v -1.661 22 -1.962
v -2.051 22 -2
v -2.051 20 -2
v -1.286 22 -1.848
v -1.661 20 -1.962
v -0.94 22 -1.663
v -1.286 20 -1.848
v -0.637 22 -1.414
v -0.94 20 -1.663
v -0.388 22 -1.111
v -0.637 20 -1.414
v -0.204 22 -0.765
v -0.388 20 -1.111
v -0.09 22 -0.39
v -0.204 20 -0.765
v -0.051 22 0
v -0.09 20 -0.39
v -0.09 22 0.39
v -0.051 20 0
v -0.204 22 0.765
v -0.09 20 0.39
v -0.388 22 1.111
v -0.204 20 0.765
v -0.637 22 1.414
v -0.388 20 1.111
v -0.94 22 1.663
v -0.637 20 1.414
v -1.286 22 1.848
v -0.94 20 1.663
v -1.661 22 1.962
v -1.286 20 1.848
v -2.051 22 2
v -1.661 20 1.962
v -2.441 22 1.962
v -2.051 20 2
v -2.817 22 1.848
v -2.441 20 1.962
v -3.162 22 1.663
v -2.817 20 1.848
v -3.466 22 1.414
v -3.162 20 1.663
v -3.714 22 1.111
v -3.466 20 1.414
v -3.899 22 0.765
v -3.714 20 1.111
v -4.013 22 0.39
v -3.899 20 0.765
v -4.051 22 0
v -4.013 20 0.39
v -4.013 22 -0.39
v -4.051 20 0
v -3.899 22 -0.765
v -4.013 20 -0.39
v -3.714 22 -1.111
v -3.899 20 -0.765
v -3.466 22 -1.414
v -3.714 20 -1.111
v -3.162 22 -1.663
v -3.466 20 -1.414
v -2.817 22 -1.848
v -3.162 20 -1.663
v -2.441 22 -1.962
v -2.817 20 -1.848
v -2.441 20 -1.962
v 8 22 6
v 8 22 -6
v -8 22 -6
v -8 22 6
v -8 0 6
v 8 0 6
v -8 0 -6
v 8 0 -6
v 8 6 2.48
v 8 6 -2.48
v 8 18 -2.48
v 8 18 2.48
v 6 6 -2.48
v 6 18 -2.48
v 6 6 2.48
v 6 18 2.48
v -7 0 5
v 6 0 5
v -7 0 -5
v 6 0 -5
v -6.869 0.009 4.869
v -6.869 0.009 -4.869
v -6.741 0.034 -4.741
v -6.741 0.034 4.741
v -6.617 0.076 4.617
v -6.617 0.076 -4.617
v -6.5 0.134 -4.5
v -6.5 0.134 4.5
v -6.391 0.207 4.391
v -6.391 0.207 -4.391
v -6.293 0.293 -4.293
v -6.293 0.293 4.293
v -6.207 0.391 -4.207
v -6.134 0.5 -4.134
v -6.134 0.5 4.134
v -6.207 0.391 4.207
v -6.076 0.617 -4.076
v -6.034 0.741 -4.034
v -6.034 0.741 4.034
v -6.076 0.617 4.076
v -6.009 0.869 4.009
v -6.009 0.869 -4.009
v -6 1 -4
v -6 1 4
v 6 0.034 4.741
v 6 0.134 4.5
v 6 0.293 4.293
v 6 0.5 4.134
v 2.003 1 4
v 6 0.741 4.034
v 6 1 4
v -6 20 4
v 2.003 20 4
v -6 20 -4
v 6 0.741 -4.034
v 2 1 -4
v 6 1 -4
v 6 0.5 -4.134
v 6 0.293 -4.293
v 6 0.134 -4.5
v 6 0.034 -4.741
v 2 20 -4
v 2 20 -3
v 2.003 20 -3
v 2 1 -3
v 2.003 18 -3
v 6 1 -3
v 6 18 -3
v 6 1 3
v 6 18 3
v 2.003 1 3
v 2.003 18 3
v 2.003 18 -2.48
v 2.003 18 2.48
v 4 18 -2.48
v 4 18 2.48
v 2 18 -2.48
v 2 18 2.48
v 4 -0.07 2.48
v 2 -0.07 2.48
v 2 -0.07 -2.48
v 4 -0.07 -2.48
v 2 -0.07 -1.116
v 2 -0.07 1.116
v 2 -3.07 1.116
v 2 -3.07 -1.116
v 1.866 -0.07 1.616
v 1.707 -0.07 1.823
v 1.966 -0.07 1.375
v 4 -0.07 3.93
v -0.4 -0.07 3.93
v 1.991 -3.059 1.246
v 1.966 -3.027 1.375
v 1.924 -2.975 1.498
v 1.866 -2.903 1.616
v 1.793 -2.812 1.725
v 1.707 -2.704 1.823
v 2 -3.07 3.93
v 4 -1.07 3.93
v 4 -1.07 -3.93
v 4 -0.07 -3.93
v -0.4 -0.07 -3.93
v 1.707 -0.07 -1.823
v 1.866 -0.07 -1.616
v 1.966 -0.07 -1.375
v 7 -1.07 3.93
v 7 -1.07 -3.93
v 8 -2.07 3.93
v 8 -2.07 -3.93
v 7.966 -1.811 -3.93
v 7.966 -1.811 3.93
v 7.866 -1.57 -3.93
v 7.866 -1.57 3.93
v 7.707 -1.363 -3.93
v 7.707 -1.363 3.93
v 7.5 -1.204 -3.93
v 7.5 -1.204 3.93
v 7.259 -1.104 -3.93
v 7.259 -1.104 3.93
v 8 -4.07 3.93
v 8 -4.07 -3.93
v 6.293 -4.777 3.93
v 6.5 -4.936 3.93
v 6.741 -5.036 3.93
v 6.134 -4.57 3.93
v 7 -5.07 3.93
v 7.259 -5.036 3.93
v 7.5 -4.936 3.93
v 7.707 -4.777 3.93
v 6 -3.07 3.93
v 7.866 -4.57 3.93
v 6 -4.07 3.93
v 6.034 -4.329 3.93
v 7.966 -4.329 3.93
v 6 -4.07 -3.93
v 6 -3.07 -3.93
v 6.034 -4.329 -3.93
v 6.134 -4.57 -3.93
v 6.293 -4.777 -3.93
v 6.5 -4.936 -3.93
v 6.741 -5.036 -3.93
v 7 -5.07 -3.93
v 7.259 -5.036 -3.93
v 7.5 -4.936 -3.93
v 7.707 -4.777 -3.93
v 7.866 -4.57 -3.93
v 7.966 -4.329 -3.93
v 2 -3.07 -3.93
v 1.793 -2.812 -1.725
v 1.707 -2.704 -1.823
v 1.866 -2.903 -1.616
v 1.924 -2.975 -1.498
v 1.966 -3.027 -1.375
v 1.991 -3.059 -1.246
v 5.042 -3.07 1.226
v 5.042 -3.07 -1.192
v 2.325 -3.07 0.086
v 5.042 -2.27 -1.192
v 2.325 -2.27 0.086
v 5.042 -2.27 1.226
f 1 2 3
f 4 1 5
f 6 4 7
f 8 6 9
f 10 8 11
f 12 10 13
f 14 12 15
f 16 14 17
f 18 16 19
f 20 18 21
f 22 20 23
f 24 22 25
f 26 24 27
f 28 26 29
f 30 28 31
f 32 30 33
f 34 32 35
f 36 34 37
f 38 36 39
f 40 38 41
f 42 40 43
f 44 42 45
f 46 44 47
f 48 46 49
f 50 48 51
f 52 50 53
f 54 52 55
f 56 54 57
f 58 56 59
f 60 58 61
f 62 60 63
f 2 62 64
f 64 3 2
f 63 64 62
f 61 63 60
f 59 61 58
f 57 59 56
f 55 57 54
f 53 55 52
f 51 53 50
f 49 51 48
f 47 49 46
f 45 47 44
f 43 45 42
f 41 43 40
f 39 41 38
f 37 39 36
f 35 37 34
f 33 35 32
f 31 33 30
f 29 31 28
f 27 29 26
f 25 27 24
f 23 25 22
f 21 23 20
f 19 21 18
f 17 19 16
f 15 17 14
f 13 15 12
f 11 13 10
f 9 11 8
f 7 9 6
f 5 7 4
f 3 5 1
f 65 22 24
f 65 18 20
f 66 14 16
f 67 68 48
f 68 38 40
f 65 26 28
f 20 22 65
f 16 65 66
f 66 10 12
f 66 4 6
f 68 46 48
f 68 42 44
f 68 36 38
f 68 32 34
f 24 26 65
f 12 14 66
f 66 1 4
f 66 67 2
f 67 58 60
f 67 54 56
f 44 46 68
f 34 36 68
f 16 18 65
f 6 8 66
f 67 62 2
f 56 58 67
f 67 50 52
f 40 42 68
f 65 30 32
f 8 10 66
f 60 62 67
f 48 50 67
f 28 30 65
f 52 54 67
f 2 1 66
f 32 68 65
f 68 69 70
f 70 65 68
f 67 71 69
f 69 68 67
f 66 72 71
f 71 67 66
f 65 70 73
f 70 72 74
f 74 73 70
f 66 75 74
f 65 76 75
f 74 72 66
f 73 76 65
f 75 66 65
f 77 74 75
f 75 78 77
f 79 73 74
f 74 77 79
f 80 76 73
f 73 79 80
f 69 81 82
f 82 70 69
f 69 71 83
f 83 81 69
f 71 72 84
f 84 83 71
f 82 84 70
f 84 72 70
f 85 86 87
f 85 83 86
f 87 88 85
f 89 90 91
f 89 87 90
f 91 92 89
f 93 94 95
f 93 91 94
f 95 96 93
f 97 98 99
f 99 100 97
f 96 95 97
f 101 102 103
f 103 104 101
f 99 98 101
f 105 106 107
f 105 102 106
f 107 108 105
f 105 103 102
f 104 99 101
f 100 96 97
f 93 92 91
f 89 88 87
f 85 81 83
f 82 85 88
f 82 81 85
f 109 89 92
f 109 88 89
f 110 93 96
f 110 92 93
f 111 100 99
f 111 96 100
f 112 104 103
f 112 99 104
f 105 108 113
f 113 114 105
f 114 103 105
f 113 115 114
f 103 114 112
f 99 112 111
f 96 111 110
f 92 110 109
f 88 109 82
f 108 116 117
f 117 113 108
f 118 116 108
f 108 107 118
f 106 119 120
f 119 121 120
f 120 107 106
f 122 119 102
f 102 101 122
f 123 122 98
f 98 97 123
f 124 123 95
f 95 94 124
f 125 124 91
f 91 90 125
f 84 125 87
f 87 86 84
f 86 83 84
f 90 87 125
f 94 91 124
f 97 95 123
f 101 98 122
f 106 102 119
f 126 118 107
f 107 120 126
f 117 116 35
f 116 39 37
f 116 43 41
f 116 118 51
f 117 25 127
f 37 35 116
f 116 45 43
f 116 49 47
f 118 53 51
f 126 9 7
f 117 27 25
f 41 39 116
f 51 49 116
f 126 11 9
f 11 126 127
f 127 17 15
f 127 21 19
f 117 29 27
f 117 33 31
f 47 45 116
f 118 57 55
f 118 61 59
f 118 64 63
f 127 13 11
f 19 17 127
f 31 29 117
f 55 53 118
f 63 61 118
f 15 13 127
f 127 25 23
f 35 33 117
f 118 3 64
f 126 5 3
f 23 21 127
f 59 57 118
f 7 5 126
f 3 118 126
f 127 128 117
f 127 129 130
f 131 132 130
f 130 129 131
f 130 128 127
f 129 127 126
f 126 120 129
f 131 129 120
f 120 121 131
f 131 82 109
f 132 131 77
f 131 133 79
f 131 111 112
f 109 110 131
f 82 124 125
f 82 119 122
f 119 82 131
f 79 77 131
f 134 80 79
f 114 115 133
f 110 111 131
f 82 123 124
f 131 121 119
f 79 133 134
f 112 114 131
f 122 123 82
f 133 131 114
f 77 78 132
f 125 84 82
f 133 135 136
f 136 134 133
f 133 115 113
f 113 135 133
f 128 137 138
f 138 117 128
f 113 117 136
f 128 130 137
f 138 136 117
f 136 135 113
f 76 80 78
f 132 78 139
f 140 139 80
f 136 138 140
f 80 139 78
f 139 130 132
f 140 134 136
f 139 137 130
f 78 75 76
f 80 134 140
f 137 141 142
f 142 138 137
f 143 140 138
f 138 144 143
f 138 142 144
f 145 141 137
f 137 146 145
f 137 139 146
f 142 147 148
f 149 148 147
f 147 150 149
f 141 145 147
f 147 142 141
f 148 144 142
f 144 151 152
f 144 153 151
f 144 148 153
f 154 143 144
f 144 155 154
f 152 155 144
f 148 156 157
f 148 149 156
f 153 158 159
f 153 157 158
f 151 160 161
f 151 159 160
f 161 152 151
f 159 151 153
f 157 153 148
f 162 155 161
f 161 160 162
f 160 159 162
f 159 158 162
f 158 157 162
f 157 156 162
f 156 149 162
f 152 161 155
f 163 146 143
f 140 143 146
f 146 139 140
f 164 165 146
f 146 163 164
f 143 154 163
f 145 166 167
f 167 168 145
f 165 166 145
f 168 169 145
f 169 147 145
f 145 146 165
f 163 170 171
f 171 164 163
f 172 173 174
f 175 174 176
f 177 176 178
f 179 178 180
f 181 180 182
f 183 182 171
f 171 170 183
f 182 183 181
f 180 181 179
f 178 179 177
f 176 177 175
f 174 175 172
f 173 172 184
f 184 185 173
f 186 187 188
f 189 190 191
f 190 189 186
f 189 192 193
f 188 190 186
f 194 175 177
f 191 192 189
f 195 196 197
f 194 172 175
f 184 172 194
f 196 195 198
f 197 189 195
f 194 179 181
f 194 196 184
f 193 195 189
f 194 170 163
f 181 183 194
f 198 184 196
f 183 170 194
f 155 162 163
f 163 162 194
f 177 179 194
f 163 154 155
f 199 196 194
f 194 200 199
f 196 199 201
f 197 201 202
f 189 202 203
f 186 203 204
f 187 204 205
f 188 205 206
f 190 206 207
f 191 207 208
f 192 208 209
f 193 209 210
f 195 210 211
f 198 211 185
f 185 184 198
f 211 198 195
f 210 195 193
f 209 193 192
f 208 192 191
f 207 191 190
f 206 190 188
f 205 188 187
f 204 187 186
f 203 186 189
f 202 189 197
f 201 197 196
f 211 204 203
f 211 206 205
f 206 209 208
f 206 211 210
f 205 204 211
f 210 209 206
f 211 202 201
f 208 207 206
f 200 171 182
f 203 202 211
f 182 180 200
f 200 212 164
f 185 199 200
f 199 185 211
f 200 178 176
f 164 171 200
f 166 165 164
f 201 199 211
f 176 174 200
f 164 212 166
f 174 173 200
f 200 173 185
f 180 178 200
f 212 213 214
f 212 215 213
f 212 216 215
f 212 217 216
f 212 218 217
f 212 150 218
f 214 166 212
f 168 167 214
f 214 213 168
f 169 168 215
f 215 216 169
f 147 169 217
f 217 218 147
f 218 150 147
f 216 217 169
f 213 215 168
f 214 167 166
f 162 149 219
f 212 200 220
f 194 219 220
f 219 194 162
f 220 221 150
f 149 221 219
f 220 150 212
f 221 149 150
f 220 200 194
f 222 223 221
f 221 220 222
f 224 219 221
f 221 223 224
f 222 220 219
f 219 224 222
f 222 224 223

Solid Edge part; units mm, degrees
sketch "Sketch1" plane through (0, 0, 0) normal (0, -1, 0) x (1, 0, 0)
  line L0 (8, 6) -> (-8, 6)
  line L1 (-8, 6) -> (-8, -6)
  line L2 (-8, -6) -> (8, -6)
  line L3 (8, -6) -> (8, 6)
extrude "Protrusion1" add sketch "Sketch1" against normal blind 22
sketch "Sketch2" plane through (0, 0, 0) normal (0, -1, 0) x (1, 0, 0)
  line L0 (6, 4) -> (-6, 4)
  line L1 (-6, 4) -> (-6, -4)
  line L2 (-6, -4) -> (6, -4)
  line L3 (6, -4) -> (6, 4)
extrude "Cutout1" cut sketch "Sketch2" against normal blind 20
sketch "Sketch3" plane through (0, 20, 0) normal (0, -1, 0) x (1, 0, 0)
  line L0 (6, -3) -> (2, -3)
  line L1 (2, -3) -> (2, -4)
  line L2 (2, -4) -> (6, -4)
  line L3 (6, -4) -> (6, -3)
  line L4 (6, 3) -> (2.0028, 3)
  line L5 (2.0028, 3) -> (2.0028, 4)
  line L6 (2.0028, 4) -> (6, 4)
  line L7 (6, 4) -> (6, 3)
extrude "LockSideProtrusion" add sketch "Sketch3" along normal blind 19
sketch "Sketch4" plane through (0, 20, 0) normal (0, -1, 0) x (1, 0, 0)
  line L0 (6, 3) -> (6, -3)
  line L1 (6, -3) -> (2.0028, -3)
  line L2 (2.0028, -3) -> (2.0028, 3)
  line L3 (2.0028, 3) -> (6, 3)
extrude "LockBaseProtrusion" add sketch "Sketch4" along normal blind 2
sketch "Sketch5" plane through (4.0014, 18, 0) normal (0, -1, 0) x (1, 0, 0)
  line L0 (-0.0014, 2.48) -> (-0.0014, -2.48)
  line L1 (-0.0014, -2.48) -> (-2.0014, -2.48)
  line L2 (-2.0014, -2.48) -> (-2.0014, 2.48)
  line L3 (-2.0014, 2.48) -> (-0.0014, 2.48)
extrude "LockProtrusion" add sketch "Sketch5" along normal blind 18.07
sketch "Sketch6" plane through (3, -0.07, 0) normal (0, -1, 0) x (1, 0, 0)
  line L0 (-1, -3.93) -> (-1, 3.93)
  line L1 (-1, 3.93) -> (1, 3.93)
  line L2 (1, 3.93) -> (1, -3.93)
  line L3 (1, -3.93) -> (-1, -3.93)
extrude "LockHeadMainProtrusion" add sketch "Sketch6" along normal blind 3
sketch "Sketch7" plane through (3, -0.07, 0) normal (0, -1, 0) x (1, 0, 0)
  line L0 (-3.4, 3.93) -> (-1, 1.53)
  line L1 (-1, 1.53) -> (-1, 3.93)
  line L2 (-1, 3.93) -> (-3.4, 3.93)
  line L3 (-3.4, -3.93) -> (-1, -1.53)
  line L4 (-1, -1.53) -> (-1, -3.93)
  line L5 (-1, -3.93) -> (-3.4, -3.93)
  dimension "D1" = 0.07
  dimension "D2" = 7.86
  dimension "D3" = 0.07
extrude "LockHeadTriangleProtrusion" add sketch "Sketch7" along normal blind 3
sketch "Sketch8" plane through (1.8, -1.57, -3.93) normal (0, 0, -1) x (1, 0, 0)
  line L0 (-2.2, 1.5) -> (0.2, 1.5)
  line L1 (0.2, 1.5) -> (-2.2, -1.5)
  line L2 (-2.2, -1.5) -> (-2.2, 1.5)
extrude "LockHeadTriangleCut" cut sketch "Sketch8" against normal blind 8.6519
sketch "Sketch9" plane through (4, 7.465, 0) normal (1, 0, 0) x (0, 0, 1)
  line L0 (-3.93, 10.535) -> (3.93, 10.535)
  line L1 (3.93, 10.535) -> (3.93, 8.535)
  line L2 (3.93, 8.535) -> (-3.93, 8.535)
  line L3 (-3.93, 8.535) -> (-3.93, 10.535)
extrude "FlapBaseProtrusion" add sketch "Sketch9" along normal blind 4
sketch "Sketch10" plane through (5, -3.07, 0) normal (0, -1, 0) x (1, 0, 0)
  line L0 (3, 3.93) -> (1, 3.93)
  line L1 (1, 3.93) -> (1, -3.93)
  line L2 (1, -3.93) -> (3, -3.93)
  line L3 (3, -3.93) -> (3, 3.93)
extrude "FlapHandleProtrusion" add sketch "Sketch10" along normal blind 2
fillet "SlotInnerRound" radius 1 3 edges at (0, 0, 4) (-6, 0, 0) (0, 0, -4)
fillet "FlapRound" radius 1 3 edges at (6, -5.07, 0) (8, -5.07, 0) (8, -1.07, 0)
sketch "Sketch11" plane through (4, -3.07, 0) normal (0, -1, 0) x (1, 0, 0)
  line L0 (-1.6753, 0.0864) -> (1.042, 1.2263)
  line L1 (1.042, 1.2263) -> (1.042, -1.1917)
  line L2 (1.042, -1.1917) -> (-1.6753, 0.0864)
extrude "MarkCut" cut sketch "Sketch11" against normal blind 0.8
hole "PushHole" at (-2.0513, 20, 0) direction (0, 1, 0) diameter 4 end through all
fillet "LockTriangleRound" radius 1 2 edges at (2, -1.57, 1.53) (2, -1.57, -1.53)
sketch "Sketch12" plane through (8, 11, 0) normal (1, 0, 0) x (0, -1, 0)
  line L0 (-7, 2.48) -> (5, 2.48)
  line L1 (5, 2.48) -> (5, -2.48)
  line L2 (5, -2.48) -> (-7, -2.48)
  line L3 (-7, -2.48) -> (-7, 2.48)
extrude "Cutout2" cut sketch "Sketch12" against normal blind 2
